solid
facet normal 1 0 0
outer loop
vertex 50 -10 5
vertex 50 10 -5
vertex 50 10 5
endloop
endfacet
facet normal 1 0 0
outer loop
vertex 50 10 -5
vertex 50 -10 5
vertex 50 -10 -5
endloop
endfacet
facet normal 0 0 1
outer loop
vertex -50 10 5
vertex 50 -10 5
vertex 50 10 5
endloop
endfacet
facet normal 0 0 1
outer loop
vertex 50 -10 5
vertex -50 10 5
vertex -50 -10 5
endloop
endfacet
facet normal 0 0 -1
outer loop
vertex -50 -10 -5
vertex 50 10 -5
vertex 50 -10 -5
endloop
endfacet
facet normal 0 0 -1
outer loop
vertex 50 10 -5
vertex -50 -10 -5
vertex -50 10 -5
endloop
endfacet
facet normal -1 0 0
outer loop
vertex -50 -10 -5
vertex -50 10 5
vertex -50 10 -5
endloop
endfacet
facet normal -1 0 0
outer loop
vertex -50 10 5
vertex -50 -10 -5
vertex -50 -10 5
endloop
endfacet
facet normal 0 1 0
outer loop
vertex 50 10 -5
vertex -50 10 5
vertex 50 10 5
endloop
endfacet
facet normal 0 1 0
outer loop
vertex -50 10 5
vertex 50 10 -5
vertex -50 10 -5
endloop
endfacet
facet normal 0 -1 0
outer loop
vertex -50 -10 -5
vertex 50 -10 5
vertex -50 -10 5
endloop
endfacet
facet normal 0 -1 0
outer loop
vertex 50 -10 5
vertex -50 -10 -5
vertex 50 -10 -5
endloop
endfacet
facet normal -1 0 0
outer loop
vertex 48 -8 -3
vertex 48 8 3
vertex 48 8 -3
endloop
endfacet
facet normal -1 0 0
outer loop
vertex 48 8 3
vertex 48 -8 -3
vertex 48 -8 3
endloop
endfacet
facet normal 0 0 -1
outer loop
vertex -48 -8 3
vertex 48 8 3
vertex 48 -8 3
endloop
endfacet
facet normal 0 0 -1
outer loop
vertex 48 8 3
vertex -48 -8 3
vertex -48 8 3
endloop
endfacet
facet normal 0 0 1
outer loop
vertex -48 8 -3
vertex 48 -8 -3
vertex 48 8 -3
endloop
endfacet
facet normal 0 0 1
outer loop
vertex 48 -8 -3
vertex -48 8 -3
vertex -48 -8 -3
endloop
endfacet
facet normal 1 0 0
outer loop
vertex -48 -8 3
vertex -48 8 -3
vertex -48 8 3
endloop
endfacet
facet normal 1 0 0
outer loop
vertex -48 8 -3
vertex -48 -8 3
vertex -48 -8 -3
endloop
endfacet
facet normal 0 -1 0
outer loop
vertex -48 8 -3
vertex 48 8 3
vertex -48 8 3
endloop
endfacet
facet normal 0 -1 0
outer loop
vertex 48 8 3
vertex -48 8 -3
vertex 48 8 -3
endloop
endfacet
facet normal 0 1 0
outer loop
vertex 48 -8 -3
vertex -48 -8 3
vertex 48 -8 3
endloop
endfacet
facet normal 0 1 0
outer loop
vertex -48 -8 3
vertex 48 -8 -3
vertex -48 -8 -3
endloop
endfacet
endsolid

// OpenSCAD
// Parameters for the rectangular hollow bar
length = 100; // Length of the bar
width = 20;   // Outer width of the bar
height = 10;  // Outer height of the bar
wall_thickness = 2; // Thickness of the walls

// Function to create a rectangular hollow bar with sharper edges and uniform hollow interior
module rectangular_hollow_bar() {
    difference() {
        // Outer rectangular prism with sharp edges
        cube([length, width, height], center = true);
        // Inner hollow space with uniform dimensions
        translate([0, 0, 0]) {
            cube([length - 2 * wall_thickness, width - 2 * wall_thickness, height - 2 * wall_thickness], center = true);
        }
    }
}

// Adjust the position of the rectangular hollow bar to align perfectly
translate([0, 0, 0]) {
    rectangular_hollow_bar();
}
